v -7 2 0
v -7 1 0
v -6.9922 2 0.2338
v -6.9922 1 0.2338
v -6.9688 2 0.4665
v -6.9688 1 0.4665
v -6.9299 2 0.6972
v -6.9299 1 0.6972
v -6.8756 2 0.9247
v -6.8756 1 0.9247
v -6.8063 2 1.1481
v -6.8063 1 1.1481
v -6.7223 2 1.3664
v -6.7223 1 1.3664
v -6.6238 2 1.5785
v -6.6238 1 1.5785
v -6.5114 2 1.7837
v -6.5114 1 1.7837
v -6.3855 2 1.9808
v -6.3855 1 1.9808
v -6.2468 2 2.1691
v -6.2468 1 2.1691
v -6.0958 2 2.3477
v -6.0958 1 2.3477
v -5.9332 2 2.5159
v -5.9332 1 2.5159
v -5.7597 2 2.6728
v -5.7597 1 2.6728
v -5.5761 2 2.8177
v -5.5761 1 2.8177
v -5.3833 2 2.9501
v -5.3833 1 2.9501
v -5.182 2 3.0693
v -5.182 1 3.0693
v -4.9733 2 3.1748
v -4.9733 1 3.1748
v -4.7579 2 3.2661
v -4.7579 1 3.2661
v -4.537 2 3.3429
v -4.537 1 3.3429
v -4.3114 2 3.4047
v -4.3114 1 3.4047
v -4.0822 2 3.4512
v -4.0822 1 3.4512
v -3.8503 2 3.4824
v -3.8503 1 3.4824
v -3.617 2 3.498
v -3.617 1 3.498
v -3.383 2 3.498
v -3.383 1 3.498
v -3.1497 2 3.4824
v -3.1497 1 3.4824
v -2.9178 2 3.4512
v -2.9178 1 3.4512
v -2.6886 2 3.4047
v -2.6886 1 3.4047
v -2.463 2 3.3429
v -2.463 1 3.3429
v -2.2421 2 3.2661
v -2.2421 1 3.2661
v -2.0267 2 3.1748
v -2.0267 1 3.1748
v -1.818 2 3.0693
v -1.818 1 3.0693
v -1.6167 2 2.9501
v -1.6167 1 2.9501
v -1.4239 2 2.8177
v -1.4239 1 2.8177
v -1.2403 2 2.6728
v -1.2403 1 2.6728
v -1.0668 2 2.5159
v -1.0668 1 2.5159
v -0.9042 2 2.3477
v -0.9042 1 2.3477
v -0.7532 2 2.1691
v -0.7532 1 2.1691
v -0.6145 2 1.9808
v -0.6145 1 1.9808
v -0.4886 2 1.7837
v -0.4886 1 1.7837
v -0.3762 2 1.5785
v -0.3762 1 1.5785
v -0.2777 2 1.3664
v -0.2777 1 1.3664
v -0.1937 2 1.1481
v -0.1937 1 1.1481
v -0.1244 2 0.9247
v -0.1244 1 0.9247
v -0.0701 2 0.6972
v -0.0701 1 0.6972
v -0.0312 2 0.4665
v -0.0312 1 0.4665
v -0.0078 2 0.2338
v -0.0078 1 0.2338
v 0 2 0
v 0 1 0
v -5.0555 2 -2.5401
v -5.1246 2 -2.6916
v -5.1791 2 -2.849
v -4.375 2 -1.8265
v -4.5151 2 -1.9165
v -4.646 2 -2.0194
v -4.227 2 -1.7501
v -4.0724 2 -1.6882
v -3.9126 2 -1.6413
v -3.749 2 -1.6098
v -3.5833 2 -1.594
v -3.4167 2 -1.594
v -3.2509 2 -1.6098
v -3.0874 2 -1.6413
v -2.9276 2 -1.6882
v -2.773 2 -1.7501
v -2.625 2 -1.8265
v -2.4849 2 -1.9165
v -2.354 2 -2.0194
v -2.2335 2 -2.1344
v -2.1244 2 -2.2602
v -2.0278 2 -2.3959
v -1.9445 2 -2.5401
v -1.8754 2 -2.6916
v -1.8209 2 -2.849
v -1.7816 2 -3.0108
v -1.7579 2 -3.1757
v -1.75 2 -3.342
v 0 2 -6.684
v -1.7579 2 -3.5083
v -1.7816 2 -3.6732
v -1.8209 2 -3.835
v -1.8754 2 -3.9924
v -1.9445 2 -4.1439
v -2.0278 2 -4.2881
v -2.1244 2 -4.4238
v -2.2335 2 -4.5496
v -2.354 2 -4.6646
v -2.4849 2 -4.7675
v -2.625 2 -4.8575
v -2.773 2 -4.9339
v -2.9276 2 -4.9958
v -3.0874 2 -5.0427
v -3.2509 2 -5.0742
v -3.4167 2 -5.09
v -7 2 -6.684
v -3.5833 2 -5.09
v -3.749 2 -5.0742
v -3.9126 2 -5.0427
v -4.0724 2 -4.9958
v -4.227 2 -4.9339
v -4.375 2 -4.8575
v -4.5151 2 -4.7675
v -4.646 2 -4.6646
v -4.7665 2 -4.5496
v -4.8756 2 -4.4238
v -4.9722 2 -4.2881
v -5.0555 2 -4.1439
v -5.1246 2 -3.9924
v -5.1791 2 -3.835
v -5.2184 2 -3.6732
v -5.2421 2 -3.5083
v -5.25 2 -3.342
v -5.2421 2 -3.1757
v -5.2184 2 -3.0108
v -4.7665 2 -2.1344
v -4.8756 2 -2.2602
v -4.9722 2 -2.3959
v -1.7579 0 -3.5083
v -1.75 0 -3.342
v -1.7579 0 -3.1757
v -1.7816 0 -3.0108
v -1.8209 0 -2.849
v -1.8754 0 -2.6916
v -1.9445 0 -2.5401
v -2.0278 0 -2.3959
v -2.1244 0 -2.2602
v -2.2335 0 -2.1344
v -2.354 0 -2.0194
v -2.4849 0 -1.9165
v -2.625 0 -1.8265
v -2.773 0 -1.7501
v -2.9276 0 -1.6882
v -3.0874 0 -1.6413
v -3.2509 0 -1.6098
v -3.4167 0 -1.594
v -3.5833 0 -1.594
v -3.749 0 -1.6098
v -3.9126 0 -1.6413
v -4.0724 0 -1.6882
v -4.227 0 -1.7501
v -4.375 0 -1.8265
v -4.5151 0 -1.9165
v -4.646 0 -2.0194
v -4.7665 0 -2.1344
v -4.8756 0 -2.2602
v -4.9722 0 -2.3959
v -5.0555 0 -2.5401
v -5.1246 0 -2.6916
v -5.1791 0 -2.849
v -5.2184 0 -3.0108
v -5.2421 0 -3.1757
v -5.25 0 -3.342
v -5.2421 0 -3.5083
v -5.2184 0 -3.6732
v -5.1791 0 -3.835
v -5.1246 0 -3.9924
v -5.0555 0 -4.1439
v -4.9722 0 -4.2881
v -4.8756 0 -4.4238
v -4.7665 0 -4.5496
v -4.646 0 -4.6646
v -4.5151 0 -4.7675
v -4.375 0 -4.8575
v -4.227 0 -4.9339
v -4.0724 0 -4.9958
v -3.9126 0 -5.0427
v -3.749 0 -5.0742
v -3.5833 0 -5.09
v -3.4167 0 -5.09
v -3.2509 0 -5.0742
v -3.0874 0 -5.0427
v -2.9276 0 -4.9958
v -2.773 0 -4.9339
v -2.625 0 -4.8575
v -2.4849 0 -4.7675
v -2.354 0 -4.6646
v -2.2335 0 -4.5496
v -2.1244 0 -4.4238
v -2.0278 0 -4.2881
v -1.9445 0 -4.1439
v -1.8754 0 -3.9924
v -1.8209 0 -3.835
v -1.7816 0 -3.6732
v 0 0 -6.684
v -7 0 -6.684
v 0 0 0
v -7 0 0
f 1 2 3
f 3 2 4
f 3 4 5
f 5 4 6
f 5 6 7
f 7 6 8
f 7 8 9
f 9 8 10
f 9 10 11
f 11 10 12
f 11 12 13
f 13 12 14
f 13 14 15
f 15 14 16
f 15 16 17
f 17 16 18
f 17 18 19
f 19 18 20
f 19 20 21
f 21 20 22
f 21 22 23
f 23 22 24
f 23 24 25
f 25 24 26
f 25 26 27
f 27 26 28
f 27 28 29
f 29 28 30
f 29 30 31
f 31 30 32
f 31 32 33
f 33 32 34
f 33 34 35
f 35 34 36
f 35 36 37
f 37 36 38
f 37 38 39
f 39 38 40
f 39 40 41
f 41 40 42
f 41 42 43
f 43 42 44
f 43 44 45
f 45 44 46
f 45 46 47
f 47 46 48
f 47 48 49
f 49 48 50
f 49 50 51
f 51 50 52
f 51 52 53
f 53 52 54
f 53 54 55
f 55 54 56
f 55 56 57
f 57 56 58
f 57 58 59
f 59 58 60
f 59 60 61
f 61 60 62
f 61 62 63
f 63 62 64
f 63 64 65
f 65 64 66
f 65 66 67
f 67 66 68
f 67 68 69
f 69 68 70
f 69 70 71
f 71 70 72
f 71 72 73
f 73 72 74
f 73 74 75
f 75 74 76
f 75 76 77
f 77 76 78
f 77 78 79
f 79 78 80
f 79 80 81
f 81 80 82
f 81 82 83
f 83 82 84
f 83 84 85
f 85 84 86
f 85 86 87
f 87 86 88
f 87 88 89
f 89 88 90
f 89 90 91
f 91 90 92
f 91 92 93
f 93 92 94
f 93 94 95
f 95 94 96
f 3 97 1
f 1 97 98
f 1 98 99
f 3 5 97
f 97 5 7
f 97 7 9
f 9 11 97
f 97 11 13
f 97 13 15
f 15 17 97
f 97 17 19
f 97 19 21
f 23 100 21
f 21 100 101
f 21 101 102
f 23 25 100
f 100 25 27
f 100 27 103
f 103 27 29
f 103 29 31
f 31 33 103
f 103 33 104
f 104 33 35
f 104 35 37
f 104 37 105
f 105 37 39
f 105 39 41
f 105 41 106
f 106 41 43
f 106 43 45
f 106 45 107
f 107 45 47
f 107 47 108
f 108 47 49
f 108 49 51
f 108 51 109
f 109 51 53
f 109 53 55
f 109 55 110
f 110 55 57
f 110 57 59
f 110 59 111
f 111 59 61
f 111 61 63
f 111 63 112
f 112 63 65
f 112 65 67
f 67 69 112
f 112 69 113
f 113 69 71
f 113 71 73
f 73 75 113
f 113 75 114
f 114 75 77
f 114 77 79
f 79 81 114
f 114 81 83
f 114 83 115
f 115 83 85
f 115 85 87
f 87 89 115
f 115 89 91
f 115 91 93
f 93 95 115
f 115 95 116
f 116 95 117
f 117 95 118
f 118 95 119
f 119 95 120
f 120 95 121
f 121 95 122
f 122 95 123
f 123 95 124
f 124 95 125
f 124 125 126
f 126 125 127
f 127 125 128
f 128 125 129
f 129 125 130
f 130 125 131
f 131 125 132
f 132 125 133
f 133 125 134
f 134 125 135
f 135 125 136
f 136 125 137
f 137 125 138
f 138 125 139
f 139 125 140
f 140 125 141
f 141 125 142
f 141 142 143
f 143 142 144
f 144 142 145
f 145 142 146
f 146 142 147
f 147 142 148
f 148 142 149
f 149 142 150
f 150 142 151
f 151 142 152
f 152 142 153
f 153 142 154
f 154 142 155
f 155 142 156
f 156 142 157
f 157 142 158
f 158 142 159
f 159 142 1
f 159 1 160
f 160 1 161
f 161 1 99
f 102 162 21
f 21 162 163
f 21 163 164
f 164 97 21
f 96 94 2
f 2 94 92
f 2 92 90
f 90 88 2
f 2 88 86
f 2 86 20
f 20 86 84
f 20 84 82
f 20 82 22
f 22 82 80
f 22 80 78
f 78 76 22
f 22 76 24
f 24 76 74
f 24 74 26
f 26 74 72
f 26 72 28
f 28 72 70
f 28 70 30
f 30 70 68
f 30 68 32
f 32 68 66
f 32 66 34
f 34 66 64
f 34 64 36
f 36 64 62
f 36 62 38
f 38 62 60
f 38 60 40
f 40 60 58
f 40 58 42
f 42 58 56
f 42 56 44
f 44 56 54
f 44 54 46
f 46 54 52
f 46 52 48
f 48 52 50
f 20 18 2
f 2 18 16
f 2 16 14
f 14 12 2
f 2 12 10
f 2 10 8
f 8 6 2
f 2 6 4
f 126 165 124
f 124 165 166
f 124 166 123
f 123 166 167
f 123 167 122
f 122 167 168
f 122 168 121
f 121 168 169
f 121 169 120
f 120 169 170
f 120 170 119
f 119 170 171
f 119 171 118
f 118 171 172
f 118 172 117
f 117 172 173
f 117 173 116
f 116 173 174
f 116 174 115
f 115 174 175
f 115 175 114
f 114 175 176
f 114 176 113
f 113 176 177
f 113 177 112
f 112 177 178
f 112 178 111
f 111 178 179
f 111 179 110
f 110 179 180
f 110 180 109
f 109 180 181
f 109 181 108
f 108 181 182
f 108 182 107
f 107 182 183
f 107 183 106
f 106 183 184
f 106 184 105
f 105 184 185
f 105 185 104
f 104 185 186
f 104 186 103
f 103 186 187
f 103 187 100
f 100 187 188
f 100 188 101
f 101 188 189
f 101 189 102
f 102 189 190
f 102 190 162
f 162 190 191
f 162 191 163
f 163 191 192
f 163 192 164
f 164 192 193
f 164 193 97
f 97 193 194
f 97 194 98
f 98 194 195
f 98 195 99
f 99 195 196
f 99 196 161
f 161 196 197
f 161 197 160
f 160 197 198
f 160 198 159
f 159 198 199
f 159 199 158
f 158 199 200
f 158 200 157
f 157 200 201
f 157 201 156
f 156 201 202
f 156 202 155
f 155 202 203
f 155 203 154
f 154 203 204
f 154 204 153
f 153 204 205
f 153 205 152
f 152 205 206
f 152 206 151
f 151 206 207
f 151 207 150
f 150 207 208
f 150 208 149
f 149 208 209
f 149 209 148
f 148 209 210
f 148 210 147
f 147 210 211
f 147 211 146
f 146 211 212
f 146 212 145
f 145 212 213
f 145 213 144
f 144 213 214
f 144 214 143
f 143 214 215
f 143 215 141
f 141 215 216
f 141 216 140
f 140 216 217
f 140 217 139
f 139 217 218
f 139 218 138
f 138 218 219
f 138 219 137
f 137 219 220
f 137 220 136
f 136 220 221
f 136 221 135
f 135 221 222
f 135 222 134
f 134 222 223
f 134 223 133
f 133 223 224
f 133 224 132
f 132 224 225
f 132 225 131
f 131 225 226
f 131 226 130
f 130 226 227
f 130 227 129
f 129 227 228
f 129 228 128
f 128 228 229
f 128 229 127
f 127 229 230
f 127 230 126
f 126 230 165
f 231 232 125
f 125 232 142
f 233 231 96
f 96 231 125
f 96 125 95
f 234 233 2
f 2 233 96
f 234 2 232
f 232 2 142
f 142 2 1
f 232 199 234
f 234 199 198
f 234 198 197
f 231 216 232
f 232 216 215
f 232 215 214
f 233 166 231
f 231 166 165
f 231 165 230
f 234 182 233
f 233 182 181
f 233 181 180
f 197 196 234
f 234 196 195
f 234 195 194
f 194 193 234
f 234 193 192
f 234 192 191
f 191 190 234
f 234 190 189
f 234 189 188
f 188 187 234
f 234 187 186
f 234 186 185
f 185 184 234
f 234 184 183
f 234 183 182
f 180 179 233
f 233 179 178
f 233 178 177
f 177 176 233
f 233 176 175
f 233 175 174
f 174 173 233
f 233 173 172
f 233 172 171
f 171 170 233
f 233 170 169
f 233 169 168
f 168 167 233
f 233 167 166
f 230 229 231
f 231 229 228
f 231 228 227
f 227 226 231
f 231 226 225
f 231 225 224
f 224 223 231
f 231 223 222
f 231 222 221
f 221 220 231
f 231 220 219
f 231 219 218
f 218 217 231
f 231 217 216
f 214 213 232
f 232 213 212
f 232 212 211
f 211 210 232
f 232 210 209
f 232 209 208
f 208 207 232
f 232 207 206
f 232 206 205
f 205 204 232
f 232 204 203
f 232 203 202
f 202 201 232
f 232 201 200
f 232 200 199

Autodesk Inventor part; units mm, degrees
ref_plane "YZ Plane" through (0, 0, 0) normal (1, 0, 0) x (0, 1, 0)
ref_plane "XZ Plane" through (0, 0, 0) normal (0, 1, 0) x (-1, 0, 0)
ref_plane "XY Plane" through (0, 0, 0) normal (0, 0, 1) x (1, 0, 0)
sketch "Sketch1" plane through (0, 0, 0) normal (0, 1, 0) x (-1, 0, 0)
  line L0 (0, 0) -> (7, 0)
  line L1 (7, 0) -> (7, -6.684)
  line L2 (7, -6.684) -> (0, -6.684)
  line L3 (0, -6.684) -> (0, 0)
  line L4 (3.5, -6.684) -> (3.5, -3.342)
  circle A0 centre (3.5, -3.342) radius 1.75
  dimension "d0" = 7
  dimension "d1" = 6.684
  dimension "d2" = 3.342
  dimension "d3" = 3.5
extrude "Extrusion1" add sketch "Sketch1" along normal blind 1
sketch "Sketch2" plane through (0, 1, 0) normal (0, 1, 0) x (1, 0, 0)
  line L0 (-7, 6.684) -> (-7, 0) projected
  line L1 (-7, 0) -> (0, 0) projected
  line L2 (0, 0) -> (0, 6.684) projected
  line L3 (0, 6.684) -> (-7, 6.684) projected
  circle A0 centre (-3.5, 3.342) radius 1.75 projected
  arc A1 (-7, 0) -> (0, 0) centre (-3.5, 0) ccw
extrude "Extrusion2" add sketch "Sketch2" along normal blind 1
properties part number "sunfoundernub"
